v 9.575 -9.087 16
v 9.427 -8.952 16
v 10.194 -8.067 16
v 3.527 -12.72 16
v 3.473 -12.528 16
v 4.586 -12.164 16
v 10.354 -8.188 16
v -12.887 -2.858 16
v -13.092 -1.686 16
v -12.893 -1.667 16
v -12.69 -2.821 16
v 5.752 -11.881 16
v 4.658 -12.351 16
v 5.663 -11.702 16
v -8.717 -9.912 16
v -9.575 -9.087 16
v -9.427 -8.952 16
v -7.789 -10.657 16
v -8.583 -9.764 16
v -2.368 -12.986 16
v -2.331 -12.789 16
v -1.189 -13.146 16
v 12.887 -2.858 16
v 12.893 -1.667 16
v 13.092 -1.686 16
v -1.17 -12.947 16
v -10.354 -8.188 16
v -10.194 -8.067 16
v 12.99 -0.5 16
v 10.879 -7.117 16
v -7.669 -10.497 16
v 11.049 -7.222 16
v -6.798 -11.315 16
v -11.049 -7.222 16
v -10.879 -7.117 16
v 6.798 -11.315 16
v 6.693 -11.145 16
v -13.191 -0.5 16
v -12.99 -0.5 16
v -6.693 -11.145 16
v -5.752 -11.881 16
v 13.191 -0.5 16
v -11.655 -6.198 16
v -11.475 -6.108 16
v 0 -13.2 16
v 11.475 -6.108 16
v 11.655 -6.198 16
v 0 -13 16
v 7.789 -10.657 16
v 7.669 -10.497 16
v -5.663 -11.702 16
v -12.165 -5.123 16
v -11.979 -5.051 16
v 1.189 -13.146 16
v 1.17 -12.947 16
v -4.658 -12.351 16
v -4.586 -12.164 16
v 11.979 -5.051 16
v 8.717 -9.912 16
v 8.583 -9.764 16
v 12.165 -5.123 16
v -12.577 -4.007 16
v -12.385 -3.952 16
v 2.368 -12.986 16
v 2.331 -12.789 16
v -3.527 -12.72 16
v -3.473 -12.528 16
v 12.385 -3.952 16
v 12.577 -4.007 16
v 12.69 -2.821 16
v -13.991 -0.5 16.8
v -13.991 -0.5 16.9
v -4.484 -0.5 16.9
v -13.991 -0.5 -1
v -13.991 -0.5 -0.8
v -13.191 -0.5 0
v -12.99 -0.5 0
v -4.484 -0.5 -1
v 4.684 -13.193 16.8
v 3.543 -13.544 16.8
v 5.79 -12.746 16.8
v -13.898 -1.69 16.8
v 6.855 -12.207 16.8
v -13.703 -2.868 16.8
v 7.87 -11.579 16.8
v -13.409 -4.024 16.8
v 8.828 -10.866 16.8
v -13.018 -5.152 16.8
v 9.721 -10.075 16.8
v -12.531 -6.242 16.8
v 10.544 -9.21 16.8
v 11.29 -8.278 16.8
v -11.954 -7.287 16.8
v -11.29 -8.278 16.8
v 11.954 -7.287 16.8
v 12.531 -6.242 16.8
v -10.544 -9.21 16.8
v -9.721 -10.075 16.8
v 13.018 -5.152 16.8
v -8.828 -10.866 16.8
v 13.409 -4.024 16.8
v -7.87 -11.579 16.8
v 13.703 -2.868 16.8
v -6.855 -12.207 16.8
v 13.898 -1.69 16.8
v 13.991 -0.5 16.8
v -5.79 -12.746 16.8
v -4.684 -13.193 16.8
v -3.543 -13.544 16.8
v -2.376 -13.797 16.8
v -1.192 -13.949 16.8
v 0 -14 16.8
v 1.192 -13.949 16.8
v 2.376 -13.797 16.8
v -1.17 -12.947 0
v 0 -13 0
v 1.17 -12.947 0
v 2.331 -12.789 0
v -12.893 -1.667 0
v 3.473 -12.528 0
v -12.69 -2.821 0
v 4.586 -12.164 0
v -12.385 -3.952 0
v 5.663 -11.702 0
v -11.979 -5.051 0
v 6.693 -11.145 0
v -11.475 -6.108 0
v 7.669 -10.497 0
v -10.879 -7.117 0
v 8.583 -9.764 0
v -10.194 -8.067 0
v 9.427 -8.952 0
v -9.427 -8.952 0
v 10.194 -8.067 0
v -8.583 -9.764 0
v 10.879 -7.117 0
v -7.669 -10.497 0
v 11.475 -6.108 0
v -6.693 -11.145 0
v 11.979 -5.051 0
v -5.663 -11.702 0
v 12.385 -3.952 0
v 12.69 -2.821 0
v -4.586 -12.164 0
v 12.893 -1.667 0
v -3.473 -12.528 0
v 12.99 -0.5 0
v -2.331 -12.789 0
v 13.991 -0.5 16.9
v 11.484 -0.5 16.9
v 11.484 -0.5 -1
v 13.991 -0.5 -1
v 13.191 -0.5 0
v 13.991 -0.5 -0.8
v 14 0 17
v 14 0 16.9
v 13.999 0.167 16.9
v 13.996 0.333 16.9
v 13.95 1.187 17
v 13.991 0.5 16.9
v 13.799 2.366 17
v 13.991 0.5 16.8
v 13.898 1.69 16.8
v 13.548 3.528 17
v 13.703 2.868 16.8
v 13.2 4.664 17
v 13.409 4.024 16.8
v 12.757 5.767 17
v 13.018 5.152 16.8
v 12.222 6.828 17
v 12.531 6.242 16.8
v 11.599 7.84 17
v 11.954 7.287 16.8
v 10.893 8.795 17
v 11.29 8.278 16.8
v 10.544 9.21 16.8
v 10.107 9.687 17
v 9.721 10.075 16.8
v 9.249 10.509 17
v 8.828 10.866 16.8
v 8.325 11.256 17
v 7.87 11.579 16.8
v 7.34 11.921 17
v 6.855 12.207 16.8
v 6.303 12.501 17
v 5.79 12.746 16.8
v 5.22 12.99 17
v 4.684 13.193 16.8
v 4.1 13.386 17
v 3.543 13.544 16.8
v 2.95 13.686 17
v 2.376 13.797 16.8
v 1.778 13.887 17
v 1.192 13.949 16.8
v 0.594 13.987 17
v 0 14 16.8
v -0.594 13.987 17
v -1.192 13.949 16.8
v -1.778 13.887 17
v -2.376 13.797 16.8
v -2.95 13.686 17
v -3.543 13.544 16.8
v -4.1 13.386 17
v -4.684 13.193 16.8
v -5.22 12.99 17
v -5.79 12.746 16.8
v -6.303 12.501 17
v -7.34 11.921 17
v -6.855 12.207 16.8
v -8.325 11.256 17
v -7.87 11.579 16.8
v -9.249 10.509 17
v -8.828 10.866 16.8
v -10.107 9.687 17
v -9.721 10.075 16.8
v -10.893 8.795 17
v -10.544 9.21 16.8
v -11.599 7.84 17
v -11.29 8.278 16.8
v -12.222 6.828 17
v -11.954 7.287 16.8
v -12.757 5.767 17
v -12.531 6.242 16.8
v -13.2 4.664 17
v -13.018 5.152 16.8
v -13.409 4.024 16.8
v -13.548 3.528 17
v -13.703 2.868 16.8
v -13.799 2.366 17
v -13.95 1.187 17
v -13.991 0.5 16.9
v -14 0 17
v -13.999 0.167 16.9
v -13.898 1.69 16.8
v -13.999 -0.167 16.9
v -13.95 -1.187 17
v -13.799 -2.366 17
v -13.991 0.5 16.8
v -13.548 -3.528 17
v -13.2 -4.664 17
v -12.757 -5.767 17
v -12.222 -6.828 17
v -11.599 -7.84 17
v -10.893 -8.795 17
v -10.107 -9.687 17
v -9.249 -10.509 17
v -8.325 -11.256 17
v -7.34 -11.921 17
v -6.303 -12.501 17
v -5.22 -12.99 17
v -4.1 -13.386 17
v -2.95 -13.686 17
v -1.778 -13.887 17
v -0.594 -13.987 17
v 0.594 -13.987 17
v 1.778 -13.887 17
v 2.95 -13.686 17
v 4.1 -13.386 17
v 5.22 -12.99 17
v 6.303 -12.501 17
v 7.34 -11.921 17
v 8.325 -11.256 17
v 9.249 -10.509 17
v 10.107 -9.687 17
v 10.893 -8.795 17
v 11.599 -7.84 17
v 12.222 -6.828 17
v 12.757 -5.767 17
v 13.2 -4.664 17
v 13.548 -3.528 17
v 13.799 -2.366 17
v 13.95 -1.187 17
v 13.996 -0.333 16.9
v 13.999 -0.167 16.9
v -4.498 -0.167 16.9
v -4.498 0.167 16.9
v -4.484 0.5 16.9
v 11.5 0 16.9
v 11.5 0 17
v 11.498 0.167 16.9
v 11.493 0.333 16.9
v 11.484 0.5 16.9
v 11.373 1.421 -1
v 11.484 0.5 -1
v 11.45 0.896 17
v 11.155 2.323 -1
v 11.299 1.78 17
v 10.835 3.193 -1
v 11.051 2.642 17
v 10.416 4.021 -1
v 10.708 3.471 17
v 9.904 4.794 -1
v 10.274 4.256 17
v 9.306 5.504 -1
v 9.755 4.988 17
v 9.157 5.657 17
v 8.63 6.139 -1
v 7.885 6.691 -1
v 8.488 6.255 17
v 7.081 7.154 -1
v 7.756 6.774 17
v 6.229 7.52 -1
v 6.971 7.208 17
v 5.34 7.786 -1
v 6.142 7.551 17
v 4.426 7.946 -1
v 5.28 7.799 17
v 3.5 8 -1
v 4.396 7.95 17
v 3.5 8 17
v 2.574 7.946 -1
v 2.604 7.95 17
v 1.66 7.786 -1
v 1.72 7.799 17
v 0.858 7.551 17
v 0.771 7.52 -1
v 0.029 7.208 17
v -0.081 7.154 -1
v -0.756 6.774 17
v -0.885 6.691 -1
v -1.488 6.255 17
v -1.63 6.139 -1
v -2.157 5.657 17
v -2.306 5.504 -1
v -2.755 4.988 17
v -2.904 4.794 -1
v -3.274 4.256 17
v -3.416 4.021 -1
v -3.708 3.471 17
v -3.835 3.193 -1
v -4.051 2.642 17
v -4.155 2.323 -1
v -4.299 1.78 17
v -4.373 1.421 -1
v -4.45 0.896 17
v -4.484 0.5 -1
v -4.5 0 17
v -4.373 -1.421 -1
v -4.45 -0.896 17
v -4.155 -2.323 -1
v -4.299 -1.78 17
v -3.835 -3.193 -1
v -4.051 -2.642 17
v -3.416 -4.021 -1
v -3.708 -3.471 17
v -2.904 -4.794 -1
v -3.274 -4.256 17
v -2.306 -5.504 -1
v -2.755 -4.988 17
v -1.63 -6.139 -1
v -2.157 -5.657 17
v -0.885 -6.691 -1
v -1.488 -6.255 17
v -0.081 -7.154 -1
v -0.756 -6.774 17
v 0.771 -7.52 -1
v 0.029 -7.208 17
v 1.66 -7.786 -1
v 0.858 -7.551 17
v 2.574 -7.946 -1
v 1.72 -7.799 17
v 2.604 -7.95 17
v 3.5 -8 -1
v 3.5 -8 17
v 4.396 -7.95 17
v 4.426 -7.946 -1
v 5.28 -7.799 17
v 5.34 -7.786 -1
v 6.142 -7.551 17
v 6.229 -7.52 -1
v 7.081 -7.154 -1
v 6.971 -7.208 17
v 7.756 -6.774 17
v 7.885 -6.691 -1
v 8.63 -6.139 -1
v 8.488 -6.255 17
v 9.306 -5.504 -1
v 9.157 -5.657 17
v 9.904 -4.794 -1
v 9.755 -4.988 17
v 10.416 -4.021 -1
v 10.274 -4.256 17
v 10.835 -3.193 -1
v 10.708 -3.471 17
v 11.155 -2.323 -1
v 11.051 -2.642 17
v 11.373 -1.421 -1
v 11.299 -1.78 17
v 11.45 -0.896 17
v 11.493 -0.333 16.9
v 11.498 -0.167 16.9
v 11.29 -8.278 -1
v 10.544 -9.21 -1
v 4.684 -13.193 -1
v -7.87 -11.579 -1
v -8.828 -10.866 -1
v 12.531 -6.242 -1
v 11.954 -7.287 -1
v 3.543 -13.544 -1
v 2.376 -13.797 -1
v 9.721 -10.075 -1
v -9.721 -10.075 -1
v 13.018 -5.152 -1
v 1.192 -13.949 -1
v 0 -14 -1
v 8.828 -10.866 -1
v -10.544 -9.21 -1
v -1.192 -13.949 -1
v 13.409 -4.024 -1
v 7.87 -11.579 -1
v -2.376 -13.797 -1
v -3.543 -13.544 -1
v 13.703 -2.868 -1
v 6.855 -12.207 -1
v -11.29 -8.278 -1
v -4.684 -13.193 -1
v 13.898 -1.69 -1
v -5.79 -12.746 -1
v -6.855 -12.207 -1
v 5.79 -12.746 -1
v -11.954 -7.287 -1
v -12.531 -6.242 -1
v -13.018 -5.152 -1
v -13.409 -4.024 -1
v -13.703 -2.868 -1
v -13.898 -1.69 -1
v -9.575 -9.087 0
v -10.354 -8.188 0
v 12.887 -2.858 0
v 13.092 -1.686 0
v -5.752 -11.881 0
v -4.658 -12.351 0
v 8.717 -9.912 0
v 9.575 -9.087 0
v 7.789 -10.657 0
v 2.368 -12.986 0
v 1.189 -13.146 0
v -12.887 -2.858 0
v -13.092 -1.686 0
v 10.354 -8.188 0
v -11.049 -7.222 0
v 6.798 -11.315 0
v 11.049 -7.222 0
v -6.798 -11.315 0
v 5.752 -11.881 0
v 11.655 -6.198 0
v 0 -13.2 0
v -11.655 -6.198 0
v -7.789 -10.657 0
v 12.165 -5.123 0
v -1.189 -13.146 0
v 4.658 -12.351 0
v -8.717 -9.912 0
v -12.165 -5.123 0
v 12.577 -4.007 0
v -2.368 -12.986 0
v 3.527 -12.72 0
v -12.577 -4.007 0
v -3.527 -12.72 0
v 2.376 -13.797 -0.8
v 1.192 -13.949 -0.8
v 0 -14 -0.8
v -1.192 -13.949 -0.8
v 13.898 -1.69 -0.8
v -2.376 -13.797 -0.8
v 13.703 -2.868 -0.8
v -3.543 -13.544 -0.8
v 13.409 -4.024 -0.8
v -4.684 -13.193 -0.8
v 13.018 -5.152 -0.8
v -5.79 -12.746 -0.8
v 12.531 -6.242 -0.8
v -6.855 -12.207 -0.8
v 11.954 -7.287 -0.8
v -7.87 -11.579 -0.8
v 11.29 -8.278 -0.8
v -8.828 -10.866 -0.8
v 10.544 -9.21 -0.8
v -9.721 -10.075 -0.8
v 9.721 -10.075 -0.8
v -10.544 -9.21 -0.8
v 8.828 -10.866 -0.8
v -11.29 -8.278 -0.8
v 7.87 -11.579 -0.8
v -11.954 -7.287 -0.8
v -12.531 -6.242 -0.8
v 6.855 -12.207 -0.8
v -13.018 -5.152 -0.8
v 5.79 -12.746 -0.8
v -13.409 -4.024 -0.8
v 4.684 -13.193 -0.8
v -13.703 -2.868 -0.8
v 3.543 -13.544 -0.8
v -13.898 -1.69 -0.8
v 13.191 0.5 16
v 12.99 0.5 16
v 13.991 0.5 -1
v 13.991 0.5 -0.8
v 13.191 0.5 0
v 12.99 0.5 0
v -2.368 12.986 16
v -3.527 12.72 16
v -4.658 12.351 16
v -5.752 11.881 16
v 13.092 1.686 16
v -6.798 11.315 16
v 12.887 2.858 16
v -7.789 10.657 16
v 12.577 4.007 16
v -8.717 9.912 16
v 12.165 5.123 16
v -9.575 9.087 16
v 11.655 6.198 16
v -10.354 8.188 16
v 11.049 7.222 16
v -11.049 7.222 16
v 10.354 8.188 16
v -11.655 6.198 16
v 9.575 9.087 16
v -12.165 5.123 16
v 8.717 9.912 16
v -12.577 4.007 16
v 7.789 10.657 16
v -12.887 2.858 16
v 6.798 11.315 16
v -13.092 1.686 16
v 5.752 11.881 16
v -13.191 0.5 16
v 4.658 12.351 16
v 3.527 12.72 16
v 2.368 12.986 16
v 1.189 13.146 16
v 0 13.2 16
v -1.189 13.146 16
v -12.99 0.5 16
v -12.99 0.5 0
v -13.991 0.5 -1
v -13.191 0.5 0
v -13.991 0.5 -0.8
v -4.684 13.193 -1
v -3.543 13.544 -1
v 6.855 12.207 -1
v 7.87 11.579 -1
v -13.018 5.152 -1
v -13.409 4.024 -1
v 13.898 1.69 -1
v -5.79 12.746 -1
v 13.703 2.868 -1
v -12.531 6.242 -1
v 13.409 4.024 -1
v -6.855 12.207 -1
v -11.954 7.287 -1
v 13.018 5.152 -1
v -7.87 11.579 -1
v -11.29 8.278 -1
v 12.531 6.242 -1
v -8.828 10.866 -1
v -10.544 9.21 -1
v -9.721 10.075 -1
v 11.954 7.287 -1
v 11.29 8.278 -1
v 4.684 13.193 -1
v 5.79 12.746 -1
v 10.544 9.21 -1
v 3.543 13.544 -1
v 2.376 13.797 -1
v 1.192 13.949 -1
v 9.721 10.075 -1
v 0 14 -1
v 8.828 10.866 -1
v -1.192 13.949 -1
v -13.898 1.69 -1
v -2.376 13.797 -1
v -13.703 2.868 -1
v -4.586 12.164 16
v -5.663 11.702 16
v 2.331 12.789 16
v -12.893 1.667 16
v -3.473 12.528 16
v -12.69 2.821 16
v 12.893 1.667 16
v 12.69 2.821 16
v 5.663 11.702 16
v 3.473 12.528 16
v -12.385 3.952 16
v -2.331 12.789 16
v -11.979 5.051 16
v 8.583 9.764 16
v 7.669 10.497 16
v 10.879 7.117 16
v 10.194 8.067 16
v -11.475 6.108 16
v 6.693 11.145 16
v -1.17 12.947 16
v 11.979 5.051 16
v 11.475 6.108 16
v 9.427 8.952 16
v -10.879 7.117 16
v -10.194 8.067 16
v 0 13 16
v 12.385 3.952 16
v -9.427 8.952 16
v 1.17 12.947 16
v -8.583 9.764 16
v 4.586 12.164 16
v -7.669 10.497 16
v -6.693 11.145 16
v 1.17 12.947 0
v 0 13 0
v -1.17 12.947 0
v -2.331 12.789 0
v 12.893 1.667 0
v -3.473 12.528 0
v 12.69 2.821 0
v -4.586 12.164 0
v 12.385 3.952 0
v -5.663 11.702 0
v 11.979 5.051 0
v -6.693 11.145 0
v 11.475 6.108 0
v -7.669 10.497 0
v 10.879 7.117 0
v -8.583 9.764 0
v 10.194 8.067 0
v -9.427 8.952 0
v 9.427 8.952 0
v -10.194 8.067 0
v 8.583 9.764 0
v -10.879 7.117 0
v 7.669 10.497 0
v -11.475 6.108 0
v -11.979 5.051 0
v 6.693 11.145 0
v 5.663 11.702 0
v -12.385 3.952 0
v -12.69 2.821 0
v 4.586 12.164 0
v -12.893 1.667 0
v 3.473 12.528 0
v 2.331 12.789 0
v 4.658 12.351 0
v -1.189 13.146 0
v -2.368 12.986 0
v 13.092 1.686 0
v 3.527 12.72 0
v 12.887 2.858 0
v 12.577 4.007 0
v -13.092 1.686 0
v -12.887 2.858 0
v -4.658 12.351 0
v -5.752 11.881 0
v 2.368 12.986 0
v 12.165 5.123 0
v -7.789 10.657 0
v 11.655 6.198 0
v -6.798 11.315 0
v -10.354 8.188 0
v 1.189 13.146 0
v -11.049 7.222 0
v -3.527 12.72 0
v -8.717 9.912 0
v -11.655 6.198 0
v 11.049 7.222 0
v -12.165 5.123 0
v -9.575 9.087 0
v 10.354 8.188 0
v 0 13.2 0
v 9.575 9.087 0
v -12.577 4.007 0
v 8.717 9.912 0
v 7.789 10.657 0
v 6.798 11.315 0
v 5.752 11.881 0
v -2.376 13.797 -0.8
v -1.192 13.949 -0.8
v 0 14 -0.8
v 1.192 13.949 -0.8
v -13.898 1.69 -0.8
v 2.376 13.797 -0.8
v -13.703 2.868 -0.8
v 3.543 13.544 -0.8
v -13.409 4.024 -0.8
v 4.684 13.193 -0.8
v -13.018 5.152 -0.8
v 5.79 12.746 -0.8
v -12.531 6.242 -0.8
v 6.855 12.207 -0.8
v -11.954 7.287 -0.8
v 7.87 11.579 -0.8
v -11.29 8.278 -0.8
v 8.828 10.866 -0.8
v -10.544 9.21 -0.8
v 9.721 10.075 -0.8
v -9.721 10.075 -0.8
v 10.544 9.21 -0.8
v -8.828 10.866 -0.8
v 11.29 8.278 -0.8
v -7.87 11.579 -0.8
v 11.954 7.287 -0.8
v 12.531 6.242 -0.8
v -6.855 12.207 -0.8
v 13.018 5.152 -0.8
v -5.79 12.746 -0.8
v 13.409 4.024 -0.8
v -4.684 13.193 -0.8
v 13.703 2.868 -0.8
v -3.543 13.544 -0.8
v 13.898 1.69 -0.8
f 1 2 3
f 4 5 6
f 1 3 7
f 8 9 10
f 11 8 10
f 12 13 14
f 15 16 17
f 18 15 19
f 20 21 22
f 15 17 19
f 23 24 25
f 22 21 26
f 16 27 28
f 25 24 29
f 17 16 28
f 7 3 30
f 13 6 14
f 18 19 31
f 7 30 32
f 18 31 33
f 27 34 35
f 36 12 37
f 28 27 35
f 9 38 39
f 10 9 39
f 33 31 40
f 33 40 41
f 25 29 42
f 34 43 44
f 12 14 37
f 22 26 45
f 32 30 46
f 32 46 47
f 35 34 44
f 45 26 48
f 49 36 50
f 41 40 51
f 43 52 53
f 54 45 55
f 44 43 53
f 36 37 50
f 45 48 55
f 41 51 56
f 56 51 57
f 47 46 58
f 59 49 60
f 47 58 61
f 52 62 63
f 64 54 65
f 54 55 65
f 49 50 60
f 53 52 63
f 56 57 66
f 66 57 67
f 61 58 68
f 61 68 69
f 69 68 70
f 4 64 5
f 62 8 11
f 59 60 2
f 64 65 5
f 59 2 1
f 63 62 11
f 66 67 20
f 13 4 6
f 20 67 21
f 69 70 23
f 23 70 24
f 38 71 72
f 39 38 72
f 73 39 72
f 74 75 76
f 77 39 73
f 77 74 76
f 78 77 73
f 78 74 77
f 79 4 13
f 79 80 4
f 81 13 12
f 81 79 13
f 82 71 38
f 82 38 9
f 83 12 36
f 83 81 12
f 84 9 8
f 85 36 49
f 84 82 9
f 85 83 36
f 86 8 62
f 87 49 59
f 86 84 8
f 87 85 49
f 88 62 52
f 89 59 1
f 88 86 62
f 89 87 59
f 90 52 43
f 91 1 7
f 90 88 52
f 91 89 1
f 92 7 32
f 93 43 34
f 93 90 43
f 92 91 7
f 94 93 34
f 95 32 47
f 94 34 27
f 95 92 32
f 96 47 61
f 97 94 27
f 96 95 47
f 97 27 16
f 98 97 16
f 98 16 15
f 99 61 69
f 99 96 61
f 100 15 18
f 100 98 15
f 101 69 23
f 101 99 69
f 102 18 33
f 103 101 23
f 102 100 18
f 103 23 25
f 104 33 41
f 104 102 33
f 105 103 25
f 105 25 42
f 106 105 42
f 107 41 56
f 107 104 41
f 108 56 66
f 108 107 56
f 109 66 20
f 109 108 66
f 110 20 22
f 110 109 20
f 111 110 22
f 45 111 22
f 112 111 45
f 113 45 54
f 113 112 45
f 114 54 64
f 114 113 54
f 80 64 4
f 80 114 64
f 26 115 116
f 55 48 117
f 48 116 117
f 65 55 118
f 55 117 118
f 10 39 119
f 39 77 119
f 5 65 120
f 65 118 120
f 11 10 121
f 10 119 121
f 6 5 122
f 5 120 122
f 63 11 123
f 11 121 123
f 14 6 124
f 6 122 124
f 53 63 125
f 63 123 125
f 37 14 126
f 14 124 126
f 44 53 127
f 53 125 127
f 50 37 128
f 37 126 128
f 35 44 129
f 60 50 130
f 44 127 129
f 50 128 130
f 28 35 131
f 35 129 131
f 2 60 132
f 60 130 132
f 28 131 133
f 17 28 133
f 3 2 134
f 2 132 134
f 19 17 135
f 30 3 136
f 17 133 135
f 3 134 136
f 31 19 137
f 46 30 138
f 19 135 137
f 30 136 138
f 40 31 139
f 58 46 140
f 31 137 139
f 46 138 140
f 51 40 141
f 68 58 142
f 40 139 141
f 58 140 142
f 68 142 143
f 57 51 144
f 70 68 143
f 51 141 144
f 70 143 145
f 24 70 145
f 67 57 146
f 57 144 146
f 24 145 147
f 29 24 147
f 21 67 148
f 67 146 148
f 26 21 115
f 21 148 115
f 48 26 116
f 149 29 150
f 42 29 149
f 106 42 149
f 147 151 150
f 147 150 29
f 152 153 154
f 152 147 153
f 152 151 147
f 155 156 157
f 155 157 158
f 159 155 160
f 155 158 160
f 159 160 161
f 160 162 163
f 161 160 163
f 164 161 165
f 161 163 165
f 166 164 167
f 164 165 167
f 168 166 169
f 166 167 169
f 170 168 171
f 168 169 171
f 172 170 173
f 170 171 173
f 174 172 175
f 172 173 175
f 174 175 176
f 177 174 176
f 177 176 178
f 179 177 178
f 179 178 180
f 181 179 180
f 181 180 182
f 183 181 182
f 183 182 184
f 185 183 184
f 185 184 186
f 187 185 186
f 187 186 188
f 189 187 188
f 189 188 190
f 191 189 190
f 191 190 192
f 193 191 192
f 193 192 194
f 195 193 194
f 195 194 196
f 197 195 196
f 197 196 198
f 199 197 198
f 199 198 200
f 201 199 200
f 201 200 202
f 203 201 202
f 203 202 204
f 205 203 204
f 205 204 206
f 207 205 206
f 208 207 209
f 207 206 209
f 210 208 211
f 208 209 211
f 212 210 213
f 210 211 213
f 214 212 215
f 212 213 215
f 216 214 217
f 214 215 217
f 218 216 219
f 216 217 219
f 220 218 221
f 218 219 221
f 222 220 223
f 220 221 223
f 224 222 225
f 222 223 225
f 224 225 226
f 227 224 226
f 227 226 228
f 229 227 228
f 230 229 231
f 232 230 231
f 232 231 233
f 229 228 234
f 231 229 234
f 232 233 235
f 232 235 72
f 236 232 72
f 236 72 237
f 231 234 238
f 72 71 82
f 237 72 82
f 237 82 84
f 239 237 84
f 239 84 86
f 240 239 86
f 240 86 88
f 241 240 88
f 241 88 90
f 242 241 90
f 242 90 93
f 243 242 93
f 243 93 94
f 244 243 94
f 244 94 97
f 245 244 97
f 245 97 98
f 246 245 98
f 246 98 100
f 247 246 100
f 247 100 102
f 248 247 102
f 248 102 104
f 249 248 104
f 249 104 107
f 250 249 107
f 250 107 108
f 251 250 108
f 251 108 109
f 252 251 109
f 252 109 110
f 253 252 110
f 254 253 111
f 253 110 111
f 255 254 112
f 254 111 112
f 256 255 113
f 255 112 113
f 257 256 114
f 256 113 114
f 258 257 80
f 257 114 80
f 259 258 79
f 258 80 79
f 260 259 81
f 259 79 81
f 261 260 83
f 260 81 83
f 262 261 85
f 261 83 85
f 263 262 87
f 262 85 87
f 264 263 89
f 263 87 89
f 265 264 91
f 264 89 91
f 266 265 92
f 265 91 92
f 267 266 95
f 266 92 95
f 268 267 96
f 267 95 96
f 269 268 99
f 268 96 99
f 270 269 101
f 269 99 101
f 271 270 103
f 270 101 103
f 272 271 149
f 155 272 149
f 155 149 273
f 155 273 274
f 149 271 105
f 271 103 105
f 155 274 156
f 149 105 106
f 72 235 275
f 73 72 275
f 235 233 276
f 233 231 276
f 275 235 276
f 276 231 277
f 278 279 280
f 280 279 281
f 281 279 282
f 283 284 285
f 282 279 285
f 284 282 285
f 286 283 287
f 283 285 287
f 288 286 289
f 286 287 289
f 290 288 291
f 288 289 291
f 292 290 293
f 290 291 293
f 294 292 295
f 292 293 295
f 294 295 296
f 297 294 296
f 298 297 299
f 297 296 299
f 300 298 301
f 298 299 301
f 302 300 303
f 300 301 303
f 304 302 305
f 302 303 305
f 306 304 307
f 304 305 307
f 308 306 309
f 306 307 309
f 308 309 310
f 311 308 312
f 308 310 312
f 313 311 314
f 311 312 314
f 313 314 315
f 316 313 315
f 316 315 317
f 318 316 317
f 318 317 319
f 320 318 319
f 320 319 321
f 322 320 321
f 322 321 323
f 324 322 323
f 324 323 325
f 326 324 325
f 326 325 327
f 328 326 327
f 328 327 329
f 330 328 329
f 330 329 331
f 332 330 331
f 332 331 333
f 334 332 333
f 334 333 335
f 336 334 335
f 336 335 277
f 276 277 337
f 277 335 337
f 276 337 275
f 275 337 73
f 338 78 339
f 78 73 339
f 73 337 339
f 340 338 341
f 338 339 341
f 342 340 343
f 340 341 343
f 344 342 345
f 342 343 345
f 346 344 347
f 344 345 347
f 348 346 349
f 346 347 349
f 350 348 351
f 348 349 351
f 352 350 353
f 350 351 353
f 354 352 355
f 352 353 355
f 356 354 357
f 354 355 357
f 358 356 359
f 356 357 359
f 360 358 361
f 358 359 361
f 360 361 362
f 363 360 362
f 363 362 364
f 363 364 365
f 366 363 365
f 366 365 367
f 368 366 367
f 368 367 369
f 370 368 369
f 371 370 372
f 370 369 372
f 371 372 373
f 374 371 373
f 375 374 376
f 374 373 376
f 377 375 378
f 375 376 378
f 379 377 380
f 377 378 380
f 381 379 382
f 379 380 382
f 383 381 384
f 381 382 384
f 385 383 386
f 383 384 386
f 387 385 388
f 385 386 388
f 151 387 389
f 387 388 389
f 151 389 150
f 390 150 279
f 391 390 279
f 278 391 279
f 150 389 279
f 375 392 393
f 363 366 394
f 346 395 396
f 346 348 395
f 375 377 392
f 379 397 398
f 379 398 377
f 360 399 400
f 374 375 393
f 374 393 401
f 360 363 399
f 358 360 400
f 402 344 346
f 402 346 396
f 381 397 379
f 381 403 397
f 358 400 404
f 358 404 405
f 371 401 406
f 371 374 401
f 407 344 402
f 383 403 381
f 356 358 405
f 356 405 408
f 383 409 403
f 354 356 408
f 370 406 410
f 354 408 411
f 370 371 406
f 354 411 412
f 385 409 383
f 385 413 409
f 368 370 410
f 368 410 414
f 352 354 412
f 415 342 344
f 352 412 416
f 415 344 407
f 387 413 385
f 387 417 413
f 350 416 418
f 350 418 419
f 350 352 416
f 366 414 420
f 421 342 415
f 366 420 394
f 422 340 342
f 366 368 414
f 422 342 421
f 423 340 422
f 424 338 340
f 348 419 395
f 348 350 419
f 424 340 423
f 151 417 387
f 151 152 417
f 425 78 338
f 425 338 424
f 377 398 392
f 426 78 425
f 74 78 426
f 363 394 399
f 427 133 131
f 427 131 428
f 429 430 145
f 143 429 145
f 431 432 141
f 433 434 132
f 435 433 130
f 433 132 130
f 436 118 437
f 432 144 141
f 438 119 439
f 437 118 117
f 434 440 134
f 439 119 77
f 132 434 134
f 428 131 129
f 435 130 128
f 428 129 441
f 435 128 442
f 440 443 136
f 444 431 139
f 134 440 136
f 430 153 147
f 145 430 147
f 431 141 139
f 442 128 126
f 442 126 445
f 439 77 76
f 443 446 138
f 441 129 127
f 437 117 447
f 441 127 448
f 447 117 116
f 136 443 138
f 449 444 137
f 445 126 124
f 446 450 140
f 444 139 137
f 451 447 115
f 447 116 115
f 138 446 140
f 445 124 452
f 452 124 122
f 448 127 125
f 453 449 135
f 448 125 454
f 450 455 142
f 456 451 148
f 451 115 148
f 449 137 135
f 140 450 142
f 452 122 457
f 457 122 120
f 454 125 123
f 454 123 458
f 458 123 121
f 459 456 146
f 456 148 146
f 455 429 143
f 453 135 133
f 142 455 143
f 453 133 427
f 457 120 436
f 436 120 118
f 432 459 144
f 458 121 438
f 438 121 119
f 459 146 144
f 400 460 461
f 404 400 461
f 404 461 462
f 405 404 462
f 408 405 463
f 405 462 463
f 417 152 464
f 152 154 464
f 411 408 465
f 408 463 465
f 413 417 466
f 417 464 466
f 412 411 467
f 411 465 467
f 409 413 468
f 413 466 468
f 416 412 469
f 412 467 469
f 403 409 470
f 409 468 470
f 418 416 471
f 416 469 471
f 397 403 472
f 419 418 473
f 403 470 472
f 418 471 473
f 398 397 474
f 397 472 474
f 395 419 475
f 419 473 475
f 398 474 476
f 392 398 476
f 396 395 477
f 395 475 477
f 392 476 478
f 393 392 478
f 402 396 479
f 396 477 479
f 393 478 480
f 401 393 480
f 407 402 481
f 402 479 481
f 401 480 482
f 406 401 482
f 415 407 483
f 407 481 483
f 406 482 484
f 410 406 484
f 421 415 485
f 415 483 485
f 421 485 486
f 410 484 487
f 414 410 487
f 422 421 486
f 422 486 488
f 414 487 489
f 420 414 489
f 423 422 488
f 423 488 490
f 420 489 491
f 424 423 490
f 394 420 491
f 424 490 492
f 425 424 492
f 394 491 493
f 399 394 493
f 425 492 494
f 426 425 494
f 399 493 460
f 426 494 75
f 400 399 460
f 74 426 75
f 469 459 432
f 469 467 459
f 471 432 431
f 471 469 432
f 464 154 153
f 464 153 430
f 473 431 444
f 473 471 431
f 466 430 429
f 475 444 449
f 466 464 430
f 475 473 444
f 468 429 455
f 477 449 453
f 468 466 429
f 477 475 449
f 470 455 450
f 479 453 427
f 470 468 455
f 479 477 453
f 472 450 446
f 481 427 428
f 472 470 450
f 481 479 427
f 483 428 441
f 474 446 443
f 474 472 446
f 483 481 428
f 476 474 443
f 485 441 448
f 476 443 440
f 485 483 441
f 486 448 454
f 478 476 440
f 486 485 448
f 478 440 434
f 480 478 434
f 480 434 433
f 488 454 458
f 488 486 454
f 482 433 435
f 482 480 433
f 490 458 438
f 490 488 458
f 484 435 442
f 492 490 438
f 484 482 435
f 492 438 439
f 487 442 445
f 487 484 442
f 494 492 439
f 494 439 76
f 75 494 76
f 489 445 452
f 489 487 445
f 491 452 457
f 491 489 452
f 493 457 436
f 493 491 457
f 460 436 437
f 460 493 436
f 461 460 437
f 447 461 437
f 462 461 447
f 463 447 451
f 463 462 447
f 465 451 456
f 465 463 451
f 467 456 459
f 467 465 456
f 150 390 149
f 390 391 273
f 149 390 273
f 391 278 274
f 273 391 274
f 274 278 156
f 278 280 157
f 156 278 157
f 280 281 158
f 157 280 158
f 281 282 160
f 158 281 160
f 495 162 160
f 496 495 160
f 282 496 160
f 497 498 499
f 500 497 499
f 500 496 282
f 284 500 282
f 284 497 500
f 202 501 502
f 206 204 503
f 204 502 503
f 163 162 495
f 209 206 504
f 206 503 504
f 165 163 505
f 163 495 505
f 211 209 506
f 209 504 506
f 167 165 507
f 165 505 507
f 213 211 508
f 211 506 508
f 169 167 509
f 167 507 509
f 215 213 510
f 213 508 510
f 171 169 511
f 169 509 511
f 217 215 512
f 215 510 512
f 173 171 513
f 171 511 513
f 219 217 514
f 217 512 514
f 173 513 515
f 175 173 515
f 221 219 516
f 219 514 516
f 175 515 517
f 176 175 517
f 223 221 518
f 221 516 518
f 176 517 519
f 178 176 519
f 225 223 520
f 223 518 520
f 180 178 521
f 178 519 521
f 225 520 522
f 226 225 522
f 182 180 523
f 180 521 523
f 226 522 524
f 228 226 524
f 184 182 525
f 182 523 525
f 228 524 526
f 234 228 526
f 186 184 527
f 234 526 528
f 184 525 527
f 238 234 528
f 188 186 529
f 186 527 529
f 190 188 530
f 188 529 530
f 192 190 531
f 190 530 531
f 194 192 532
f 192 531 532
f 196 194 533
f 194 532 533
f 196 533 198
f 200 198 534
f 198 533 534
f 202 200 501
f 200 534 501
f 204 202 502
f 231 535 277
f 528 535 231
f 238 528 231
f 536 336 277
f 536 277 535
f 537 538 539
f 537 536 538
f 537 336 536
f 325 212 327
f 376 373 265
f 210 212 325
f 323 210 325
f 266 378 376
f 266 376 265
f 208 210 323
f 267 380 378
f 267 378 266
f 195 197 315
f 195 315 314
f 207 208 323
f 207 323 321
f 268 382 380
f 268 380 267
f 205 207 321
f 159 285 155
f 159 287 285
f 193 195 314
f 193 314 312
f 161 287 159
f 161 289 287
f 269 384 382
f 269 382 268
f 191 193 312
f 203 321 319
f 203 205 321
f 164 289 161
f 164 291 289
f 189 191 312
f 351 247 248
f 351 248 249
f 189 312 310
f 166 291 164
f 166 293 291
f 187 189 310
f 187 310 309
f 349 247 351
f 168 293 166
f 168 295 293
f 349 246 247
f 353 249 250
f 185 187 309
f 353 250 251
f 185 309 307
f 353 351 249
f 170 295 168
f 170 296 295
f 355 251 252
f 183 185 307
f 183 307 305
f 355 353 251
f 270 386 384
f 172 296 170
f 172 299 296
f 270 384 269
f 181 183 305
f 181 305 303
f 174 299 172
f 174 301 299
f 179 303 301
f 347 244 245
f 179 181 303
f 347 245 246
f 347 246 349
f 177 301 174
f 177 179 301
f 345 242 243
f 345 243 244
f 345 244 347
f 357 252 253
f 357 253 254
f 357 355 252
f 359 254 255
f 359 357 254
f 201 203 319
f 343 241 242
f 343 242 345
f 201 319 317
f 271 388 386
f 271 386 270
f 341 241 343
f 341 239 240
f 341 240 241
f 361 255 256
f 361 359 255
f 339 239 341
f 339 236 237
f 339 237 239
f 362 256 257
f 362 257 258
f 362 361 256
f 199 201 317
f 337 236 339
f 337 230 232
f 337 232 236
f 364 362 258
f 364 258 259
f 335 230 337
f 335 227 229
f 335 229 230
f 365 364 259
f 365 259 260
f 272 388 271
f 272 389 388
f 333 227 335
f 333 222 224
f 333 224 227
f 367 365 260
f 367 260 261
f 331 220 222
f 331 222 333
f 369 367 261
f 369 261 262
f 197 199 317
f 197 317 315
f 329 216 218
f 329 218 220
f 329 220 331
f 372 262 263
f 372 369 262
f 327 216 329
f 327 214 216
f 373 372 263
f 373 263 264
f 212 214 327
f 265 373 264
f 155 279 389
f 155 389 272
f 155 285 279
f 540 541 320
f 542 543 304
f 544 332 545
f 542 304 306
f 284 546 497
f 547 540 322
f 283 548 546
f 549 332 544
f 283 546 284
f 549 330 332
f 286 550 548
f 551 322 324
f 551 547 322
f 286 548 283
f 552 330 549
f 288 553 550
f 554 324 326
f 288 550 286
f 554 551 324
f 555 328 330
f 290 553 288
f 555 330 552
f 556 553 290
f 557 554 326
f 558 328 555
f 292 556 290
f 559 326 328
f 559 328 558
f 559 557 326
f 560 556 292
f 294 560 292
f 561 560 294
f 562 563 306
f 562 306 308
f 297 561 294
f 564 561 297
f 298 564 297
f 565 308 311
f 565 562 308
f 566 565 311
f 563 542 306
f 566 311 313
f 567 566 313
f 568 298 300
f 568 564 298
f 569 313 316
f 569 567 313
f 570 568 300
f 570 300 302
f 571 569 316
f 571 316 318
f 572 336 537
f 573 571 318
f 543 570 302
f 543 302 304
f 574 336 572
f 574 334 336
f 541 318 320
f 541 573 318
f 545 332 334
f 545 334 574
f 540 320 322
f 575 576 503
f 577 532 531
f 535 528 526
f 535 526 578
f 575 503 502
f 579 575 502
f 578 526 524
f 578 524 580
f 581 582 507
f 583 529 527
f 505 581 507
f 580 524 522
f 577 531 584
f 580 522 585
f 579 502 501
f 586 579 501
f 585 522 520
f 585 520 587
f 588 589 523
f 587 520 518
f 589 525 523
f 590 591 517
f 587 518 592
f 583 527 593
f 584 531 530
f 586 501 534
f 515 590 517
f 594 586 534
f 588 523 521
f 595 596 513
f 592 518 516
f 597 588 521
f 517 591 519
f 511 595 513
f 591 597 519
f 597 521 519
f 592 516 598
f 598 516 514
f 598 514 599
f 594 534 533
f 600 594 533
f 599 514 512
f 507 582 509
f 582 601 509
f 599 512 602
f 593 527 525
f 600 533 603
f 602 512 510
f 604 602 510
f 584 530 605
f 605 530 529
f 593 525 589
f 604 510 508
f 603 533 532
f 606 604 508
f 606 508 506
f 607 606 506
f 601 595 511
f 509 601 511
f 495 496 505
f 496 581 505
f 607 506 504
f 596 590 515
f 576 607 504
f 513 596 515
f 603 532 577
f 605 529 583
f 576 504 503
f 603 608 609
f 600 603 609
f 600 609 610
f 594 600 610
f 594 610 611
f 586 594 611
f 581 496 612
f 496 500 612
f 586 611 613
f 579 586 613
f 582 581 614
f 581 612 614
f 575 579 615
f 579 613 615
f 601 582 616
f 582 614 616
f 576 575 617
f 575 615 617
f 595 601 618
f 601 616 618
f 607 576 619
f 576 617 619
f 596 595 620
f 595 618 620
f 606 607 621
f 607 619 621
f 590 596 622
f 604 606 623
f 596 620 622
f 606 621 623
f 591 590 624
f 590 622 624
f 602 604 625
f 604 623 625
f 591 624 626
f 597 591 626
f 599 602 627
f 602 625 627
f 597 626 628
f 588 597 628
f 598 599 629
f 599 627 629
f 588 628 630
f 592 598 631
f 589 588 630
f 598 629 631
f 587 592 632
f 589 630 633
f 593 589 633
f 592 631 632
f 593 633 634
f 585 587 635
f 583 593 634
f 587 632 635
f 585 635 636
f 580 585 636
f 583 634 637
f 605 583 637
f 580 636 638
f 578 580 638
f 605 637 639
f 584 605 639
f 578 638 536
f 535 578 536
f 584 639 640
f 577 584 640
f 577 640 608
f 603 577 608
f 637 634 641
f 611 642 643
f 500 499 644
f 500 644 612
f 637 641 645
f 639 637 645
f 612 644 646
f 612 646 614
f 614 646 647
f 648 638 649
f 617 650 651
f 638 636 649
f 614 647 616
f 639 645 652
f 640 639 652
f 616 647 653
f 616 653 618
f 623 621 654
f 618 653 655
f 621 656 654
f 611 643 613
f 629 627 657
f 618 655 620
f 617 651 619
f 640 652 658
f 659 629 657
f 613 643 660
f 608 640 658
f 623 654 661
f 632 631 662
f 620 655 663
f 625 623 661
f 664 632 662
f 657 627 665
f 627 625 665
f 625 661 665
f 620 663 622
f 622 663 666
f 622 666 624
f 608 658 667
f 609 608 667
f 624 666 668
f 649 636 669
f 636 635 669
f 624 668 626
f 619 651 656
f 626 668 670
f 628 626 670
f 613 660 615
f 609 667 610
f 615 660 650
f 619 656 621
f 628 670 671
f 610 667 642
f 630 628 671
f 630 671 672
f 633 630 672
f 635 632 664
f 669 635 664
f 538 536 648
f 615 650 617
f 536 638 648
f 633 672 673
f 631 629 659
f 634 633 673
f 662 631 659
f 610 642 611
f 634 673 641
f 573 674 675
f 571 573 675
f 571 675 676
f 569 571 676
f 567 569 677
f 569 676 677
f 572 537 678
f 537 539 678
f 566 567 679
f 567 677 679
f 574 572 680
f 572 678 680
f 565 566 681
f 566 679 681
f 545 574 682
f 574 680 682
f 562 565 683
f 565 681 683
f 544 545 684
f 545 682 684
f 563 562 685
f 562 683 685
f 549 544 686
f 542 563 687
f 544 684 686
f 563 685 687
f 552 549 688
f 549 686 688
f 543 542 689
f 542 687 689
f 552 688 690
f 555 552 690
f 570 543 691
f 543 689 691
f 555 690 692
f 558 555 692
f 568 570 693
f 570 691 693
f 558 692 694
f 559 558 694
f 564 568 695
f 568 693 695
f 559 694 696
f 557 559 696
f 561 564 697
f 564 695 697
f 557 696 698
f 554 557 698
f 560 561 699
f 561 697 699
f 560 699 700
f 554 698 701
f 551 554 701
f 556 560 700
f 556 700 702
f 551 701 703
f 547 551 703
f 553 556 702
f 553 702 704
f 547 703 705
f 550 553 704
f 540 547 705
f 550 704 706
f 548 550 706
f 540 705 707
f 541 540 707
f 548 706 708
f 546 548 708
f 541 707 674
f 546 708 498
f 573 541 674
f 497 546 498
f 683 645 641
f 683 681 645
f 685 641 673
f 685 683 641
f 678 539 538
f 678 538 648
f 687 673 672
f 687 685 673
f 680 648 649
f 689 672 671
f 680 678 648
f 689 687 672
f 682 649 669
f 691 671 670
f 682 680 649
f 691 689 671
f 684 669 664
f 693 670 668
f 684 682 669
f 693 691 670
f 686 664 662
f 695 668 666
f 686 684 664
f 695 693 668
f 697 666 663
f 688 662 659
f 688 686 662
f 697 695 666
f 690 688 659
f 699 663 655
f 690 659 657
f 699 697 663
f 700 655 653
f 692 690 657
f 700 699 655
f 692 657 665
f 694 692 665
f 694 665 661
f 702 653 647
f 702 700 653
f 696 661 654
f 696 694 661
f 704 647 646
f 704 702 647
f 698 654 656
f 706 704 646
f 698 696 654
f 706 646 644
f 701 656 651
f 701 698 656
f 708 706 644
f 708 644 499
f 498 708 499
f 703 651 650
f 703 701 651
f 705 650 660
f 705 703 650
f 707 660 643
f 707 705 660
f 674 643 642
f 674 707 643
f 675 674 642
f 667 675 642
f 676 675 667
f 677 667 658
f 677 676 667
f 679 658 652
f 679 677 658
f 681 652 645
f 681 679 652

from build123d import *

# Parameters (mm, degrees)
SKETCH_R        = 13
PAD_DEPTH       = 16
SKETCH001_R     = 14
PAD001_DEPTH    = 1
SKETCH002_R     = 14
PAD002_DEPTH    = 1
SKETCH003_R     = 8
POCKET_DEPTH    = 18.001
SKETCH004_W     = 70
SKETCH004_H     = 1
POCKET001_DEPTH = 17.9
CHAMFER_SIZE    = 0.8


with BuildPart() as part:
    # Sketch → Pad (new body)
    with BuildSketch(Plane.XY):
        Circle(SKETCH_R)
    extrude(amount=PAD_DEPTH)

    # Sketch001 → Pad001 (new body)
    with BuildSketch(Plane.XY.offset(16)):
        Circle(SKETCH001_R)
    extrude(amount=PAD001_DEPTH)

    # Sketch002 → Pad002 (new body)
    with BuildSketch(Plane(origin=(0, 0, 0), x_dir=(1, 0, 0), z_dir=(0, 0, -1))):
        Circle(SKETCH002_R)
    extrude(amount=PAD002_DEPTH)

    # Sketch003 → Pocket (cut, through all)
    with BuildSketch(Plane.XY.offset(17)):
        with Locations((3.5, 0)):
            Circle(SKETCH003_R)
    extrude(amount=-POCKET_DEPTH, mode=Mode.SUBTRACT)

    # Sketch004 → Pocket001 (cut)
    with BuildSketch(Plane(origin=(0, 0, -1), x_dir=(1, 0, 0), z_dir=(0, 0, -1))):
        Rectangle(SKETCH004_W, SKETCH004_H)
    extrude(amount=-POCKET001_DEPTH, mode=Mode.SUBTRACT)

    # Chamfer
    chamfer_edges = [part.edges().sort_by_distance(p)[0] for p in [
        (0, 14, 16),
        (0, -14, 16),
        (0, -14, 0),
        (0, 14, 0),
    ]]
    chamfer(chamfer_edges, length=CHAMFER_SIZE)


solid = part.part
